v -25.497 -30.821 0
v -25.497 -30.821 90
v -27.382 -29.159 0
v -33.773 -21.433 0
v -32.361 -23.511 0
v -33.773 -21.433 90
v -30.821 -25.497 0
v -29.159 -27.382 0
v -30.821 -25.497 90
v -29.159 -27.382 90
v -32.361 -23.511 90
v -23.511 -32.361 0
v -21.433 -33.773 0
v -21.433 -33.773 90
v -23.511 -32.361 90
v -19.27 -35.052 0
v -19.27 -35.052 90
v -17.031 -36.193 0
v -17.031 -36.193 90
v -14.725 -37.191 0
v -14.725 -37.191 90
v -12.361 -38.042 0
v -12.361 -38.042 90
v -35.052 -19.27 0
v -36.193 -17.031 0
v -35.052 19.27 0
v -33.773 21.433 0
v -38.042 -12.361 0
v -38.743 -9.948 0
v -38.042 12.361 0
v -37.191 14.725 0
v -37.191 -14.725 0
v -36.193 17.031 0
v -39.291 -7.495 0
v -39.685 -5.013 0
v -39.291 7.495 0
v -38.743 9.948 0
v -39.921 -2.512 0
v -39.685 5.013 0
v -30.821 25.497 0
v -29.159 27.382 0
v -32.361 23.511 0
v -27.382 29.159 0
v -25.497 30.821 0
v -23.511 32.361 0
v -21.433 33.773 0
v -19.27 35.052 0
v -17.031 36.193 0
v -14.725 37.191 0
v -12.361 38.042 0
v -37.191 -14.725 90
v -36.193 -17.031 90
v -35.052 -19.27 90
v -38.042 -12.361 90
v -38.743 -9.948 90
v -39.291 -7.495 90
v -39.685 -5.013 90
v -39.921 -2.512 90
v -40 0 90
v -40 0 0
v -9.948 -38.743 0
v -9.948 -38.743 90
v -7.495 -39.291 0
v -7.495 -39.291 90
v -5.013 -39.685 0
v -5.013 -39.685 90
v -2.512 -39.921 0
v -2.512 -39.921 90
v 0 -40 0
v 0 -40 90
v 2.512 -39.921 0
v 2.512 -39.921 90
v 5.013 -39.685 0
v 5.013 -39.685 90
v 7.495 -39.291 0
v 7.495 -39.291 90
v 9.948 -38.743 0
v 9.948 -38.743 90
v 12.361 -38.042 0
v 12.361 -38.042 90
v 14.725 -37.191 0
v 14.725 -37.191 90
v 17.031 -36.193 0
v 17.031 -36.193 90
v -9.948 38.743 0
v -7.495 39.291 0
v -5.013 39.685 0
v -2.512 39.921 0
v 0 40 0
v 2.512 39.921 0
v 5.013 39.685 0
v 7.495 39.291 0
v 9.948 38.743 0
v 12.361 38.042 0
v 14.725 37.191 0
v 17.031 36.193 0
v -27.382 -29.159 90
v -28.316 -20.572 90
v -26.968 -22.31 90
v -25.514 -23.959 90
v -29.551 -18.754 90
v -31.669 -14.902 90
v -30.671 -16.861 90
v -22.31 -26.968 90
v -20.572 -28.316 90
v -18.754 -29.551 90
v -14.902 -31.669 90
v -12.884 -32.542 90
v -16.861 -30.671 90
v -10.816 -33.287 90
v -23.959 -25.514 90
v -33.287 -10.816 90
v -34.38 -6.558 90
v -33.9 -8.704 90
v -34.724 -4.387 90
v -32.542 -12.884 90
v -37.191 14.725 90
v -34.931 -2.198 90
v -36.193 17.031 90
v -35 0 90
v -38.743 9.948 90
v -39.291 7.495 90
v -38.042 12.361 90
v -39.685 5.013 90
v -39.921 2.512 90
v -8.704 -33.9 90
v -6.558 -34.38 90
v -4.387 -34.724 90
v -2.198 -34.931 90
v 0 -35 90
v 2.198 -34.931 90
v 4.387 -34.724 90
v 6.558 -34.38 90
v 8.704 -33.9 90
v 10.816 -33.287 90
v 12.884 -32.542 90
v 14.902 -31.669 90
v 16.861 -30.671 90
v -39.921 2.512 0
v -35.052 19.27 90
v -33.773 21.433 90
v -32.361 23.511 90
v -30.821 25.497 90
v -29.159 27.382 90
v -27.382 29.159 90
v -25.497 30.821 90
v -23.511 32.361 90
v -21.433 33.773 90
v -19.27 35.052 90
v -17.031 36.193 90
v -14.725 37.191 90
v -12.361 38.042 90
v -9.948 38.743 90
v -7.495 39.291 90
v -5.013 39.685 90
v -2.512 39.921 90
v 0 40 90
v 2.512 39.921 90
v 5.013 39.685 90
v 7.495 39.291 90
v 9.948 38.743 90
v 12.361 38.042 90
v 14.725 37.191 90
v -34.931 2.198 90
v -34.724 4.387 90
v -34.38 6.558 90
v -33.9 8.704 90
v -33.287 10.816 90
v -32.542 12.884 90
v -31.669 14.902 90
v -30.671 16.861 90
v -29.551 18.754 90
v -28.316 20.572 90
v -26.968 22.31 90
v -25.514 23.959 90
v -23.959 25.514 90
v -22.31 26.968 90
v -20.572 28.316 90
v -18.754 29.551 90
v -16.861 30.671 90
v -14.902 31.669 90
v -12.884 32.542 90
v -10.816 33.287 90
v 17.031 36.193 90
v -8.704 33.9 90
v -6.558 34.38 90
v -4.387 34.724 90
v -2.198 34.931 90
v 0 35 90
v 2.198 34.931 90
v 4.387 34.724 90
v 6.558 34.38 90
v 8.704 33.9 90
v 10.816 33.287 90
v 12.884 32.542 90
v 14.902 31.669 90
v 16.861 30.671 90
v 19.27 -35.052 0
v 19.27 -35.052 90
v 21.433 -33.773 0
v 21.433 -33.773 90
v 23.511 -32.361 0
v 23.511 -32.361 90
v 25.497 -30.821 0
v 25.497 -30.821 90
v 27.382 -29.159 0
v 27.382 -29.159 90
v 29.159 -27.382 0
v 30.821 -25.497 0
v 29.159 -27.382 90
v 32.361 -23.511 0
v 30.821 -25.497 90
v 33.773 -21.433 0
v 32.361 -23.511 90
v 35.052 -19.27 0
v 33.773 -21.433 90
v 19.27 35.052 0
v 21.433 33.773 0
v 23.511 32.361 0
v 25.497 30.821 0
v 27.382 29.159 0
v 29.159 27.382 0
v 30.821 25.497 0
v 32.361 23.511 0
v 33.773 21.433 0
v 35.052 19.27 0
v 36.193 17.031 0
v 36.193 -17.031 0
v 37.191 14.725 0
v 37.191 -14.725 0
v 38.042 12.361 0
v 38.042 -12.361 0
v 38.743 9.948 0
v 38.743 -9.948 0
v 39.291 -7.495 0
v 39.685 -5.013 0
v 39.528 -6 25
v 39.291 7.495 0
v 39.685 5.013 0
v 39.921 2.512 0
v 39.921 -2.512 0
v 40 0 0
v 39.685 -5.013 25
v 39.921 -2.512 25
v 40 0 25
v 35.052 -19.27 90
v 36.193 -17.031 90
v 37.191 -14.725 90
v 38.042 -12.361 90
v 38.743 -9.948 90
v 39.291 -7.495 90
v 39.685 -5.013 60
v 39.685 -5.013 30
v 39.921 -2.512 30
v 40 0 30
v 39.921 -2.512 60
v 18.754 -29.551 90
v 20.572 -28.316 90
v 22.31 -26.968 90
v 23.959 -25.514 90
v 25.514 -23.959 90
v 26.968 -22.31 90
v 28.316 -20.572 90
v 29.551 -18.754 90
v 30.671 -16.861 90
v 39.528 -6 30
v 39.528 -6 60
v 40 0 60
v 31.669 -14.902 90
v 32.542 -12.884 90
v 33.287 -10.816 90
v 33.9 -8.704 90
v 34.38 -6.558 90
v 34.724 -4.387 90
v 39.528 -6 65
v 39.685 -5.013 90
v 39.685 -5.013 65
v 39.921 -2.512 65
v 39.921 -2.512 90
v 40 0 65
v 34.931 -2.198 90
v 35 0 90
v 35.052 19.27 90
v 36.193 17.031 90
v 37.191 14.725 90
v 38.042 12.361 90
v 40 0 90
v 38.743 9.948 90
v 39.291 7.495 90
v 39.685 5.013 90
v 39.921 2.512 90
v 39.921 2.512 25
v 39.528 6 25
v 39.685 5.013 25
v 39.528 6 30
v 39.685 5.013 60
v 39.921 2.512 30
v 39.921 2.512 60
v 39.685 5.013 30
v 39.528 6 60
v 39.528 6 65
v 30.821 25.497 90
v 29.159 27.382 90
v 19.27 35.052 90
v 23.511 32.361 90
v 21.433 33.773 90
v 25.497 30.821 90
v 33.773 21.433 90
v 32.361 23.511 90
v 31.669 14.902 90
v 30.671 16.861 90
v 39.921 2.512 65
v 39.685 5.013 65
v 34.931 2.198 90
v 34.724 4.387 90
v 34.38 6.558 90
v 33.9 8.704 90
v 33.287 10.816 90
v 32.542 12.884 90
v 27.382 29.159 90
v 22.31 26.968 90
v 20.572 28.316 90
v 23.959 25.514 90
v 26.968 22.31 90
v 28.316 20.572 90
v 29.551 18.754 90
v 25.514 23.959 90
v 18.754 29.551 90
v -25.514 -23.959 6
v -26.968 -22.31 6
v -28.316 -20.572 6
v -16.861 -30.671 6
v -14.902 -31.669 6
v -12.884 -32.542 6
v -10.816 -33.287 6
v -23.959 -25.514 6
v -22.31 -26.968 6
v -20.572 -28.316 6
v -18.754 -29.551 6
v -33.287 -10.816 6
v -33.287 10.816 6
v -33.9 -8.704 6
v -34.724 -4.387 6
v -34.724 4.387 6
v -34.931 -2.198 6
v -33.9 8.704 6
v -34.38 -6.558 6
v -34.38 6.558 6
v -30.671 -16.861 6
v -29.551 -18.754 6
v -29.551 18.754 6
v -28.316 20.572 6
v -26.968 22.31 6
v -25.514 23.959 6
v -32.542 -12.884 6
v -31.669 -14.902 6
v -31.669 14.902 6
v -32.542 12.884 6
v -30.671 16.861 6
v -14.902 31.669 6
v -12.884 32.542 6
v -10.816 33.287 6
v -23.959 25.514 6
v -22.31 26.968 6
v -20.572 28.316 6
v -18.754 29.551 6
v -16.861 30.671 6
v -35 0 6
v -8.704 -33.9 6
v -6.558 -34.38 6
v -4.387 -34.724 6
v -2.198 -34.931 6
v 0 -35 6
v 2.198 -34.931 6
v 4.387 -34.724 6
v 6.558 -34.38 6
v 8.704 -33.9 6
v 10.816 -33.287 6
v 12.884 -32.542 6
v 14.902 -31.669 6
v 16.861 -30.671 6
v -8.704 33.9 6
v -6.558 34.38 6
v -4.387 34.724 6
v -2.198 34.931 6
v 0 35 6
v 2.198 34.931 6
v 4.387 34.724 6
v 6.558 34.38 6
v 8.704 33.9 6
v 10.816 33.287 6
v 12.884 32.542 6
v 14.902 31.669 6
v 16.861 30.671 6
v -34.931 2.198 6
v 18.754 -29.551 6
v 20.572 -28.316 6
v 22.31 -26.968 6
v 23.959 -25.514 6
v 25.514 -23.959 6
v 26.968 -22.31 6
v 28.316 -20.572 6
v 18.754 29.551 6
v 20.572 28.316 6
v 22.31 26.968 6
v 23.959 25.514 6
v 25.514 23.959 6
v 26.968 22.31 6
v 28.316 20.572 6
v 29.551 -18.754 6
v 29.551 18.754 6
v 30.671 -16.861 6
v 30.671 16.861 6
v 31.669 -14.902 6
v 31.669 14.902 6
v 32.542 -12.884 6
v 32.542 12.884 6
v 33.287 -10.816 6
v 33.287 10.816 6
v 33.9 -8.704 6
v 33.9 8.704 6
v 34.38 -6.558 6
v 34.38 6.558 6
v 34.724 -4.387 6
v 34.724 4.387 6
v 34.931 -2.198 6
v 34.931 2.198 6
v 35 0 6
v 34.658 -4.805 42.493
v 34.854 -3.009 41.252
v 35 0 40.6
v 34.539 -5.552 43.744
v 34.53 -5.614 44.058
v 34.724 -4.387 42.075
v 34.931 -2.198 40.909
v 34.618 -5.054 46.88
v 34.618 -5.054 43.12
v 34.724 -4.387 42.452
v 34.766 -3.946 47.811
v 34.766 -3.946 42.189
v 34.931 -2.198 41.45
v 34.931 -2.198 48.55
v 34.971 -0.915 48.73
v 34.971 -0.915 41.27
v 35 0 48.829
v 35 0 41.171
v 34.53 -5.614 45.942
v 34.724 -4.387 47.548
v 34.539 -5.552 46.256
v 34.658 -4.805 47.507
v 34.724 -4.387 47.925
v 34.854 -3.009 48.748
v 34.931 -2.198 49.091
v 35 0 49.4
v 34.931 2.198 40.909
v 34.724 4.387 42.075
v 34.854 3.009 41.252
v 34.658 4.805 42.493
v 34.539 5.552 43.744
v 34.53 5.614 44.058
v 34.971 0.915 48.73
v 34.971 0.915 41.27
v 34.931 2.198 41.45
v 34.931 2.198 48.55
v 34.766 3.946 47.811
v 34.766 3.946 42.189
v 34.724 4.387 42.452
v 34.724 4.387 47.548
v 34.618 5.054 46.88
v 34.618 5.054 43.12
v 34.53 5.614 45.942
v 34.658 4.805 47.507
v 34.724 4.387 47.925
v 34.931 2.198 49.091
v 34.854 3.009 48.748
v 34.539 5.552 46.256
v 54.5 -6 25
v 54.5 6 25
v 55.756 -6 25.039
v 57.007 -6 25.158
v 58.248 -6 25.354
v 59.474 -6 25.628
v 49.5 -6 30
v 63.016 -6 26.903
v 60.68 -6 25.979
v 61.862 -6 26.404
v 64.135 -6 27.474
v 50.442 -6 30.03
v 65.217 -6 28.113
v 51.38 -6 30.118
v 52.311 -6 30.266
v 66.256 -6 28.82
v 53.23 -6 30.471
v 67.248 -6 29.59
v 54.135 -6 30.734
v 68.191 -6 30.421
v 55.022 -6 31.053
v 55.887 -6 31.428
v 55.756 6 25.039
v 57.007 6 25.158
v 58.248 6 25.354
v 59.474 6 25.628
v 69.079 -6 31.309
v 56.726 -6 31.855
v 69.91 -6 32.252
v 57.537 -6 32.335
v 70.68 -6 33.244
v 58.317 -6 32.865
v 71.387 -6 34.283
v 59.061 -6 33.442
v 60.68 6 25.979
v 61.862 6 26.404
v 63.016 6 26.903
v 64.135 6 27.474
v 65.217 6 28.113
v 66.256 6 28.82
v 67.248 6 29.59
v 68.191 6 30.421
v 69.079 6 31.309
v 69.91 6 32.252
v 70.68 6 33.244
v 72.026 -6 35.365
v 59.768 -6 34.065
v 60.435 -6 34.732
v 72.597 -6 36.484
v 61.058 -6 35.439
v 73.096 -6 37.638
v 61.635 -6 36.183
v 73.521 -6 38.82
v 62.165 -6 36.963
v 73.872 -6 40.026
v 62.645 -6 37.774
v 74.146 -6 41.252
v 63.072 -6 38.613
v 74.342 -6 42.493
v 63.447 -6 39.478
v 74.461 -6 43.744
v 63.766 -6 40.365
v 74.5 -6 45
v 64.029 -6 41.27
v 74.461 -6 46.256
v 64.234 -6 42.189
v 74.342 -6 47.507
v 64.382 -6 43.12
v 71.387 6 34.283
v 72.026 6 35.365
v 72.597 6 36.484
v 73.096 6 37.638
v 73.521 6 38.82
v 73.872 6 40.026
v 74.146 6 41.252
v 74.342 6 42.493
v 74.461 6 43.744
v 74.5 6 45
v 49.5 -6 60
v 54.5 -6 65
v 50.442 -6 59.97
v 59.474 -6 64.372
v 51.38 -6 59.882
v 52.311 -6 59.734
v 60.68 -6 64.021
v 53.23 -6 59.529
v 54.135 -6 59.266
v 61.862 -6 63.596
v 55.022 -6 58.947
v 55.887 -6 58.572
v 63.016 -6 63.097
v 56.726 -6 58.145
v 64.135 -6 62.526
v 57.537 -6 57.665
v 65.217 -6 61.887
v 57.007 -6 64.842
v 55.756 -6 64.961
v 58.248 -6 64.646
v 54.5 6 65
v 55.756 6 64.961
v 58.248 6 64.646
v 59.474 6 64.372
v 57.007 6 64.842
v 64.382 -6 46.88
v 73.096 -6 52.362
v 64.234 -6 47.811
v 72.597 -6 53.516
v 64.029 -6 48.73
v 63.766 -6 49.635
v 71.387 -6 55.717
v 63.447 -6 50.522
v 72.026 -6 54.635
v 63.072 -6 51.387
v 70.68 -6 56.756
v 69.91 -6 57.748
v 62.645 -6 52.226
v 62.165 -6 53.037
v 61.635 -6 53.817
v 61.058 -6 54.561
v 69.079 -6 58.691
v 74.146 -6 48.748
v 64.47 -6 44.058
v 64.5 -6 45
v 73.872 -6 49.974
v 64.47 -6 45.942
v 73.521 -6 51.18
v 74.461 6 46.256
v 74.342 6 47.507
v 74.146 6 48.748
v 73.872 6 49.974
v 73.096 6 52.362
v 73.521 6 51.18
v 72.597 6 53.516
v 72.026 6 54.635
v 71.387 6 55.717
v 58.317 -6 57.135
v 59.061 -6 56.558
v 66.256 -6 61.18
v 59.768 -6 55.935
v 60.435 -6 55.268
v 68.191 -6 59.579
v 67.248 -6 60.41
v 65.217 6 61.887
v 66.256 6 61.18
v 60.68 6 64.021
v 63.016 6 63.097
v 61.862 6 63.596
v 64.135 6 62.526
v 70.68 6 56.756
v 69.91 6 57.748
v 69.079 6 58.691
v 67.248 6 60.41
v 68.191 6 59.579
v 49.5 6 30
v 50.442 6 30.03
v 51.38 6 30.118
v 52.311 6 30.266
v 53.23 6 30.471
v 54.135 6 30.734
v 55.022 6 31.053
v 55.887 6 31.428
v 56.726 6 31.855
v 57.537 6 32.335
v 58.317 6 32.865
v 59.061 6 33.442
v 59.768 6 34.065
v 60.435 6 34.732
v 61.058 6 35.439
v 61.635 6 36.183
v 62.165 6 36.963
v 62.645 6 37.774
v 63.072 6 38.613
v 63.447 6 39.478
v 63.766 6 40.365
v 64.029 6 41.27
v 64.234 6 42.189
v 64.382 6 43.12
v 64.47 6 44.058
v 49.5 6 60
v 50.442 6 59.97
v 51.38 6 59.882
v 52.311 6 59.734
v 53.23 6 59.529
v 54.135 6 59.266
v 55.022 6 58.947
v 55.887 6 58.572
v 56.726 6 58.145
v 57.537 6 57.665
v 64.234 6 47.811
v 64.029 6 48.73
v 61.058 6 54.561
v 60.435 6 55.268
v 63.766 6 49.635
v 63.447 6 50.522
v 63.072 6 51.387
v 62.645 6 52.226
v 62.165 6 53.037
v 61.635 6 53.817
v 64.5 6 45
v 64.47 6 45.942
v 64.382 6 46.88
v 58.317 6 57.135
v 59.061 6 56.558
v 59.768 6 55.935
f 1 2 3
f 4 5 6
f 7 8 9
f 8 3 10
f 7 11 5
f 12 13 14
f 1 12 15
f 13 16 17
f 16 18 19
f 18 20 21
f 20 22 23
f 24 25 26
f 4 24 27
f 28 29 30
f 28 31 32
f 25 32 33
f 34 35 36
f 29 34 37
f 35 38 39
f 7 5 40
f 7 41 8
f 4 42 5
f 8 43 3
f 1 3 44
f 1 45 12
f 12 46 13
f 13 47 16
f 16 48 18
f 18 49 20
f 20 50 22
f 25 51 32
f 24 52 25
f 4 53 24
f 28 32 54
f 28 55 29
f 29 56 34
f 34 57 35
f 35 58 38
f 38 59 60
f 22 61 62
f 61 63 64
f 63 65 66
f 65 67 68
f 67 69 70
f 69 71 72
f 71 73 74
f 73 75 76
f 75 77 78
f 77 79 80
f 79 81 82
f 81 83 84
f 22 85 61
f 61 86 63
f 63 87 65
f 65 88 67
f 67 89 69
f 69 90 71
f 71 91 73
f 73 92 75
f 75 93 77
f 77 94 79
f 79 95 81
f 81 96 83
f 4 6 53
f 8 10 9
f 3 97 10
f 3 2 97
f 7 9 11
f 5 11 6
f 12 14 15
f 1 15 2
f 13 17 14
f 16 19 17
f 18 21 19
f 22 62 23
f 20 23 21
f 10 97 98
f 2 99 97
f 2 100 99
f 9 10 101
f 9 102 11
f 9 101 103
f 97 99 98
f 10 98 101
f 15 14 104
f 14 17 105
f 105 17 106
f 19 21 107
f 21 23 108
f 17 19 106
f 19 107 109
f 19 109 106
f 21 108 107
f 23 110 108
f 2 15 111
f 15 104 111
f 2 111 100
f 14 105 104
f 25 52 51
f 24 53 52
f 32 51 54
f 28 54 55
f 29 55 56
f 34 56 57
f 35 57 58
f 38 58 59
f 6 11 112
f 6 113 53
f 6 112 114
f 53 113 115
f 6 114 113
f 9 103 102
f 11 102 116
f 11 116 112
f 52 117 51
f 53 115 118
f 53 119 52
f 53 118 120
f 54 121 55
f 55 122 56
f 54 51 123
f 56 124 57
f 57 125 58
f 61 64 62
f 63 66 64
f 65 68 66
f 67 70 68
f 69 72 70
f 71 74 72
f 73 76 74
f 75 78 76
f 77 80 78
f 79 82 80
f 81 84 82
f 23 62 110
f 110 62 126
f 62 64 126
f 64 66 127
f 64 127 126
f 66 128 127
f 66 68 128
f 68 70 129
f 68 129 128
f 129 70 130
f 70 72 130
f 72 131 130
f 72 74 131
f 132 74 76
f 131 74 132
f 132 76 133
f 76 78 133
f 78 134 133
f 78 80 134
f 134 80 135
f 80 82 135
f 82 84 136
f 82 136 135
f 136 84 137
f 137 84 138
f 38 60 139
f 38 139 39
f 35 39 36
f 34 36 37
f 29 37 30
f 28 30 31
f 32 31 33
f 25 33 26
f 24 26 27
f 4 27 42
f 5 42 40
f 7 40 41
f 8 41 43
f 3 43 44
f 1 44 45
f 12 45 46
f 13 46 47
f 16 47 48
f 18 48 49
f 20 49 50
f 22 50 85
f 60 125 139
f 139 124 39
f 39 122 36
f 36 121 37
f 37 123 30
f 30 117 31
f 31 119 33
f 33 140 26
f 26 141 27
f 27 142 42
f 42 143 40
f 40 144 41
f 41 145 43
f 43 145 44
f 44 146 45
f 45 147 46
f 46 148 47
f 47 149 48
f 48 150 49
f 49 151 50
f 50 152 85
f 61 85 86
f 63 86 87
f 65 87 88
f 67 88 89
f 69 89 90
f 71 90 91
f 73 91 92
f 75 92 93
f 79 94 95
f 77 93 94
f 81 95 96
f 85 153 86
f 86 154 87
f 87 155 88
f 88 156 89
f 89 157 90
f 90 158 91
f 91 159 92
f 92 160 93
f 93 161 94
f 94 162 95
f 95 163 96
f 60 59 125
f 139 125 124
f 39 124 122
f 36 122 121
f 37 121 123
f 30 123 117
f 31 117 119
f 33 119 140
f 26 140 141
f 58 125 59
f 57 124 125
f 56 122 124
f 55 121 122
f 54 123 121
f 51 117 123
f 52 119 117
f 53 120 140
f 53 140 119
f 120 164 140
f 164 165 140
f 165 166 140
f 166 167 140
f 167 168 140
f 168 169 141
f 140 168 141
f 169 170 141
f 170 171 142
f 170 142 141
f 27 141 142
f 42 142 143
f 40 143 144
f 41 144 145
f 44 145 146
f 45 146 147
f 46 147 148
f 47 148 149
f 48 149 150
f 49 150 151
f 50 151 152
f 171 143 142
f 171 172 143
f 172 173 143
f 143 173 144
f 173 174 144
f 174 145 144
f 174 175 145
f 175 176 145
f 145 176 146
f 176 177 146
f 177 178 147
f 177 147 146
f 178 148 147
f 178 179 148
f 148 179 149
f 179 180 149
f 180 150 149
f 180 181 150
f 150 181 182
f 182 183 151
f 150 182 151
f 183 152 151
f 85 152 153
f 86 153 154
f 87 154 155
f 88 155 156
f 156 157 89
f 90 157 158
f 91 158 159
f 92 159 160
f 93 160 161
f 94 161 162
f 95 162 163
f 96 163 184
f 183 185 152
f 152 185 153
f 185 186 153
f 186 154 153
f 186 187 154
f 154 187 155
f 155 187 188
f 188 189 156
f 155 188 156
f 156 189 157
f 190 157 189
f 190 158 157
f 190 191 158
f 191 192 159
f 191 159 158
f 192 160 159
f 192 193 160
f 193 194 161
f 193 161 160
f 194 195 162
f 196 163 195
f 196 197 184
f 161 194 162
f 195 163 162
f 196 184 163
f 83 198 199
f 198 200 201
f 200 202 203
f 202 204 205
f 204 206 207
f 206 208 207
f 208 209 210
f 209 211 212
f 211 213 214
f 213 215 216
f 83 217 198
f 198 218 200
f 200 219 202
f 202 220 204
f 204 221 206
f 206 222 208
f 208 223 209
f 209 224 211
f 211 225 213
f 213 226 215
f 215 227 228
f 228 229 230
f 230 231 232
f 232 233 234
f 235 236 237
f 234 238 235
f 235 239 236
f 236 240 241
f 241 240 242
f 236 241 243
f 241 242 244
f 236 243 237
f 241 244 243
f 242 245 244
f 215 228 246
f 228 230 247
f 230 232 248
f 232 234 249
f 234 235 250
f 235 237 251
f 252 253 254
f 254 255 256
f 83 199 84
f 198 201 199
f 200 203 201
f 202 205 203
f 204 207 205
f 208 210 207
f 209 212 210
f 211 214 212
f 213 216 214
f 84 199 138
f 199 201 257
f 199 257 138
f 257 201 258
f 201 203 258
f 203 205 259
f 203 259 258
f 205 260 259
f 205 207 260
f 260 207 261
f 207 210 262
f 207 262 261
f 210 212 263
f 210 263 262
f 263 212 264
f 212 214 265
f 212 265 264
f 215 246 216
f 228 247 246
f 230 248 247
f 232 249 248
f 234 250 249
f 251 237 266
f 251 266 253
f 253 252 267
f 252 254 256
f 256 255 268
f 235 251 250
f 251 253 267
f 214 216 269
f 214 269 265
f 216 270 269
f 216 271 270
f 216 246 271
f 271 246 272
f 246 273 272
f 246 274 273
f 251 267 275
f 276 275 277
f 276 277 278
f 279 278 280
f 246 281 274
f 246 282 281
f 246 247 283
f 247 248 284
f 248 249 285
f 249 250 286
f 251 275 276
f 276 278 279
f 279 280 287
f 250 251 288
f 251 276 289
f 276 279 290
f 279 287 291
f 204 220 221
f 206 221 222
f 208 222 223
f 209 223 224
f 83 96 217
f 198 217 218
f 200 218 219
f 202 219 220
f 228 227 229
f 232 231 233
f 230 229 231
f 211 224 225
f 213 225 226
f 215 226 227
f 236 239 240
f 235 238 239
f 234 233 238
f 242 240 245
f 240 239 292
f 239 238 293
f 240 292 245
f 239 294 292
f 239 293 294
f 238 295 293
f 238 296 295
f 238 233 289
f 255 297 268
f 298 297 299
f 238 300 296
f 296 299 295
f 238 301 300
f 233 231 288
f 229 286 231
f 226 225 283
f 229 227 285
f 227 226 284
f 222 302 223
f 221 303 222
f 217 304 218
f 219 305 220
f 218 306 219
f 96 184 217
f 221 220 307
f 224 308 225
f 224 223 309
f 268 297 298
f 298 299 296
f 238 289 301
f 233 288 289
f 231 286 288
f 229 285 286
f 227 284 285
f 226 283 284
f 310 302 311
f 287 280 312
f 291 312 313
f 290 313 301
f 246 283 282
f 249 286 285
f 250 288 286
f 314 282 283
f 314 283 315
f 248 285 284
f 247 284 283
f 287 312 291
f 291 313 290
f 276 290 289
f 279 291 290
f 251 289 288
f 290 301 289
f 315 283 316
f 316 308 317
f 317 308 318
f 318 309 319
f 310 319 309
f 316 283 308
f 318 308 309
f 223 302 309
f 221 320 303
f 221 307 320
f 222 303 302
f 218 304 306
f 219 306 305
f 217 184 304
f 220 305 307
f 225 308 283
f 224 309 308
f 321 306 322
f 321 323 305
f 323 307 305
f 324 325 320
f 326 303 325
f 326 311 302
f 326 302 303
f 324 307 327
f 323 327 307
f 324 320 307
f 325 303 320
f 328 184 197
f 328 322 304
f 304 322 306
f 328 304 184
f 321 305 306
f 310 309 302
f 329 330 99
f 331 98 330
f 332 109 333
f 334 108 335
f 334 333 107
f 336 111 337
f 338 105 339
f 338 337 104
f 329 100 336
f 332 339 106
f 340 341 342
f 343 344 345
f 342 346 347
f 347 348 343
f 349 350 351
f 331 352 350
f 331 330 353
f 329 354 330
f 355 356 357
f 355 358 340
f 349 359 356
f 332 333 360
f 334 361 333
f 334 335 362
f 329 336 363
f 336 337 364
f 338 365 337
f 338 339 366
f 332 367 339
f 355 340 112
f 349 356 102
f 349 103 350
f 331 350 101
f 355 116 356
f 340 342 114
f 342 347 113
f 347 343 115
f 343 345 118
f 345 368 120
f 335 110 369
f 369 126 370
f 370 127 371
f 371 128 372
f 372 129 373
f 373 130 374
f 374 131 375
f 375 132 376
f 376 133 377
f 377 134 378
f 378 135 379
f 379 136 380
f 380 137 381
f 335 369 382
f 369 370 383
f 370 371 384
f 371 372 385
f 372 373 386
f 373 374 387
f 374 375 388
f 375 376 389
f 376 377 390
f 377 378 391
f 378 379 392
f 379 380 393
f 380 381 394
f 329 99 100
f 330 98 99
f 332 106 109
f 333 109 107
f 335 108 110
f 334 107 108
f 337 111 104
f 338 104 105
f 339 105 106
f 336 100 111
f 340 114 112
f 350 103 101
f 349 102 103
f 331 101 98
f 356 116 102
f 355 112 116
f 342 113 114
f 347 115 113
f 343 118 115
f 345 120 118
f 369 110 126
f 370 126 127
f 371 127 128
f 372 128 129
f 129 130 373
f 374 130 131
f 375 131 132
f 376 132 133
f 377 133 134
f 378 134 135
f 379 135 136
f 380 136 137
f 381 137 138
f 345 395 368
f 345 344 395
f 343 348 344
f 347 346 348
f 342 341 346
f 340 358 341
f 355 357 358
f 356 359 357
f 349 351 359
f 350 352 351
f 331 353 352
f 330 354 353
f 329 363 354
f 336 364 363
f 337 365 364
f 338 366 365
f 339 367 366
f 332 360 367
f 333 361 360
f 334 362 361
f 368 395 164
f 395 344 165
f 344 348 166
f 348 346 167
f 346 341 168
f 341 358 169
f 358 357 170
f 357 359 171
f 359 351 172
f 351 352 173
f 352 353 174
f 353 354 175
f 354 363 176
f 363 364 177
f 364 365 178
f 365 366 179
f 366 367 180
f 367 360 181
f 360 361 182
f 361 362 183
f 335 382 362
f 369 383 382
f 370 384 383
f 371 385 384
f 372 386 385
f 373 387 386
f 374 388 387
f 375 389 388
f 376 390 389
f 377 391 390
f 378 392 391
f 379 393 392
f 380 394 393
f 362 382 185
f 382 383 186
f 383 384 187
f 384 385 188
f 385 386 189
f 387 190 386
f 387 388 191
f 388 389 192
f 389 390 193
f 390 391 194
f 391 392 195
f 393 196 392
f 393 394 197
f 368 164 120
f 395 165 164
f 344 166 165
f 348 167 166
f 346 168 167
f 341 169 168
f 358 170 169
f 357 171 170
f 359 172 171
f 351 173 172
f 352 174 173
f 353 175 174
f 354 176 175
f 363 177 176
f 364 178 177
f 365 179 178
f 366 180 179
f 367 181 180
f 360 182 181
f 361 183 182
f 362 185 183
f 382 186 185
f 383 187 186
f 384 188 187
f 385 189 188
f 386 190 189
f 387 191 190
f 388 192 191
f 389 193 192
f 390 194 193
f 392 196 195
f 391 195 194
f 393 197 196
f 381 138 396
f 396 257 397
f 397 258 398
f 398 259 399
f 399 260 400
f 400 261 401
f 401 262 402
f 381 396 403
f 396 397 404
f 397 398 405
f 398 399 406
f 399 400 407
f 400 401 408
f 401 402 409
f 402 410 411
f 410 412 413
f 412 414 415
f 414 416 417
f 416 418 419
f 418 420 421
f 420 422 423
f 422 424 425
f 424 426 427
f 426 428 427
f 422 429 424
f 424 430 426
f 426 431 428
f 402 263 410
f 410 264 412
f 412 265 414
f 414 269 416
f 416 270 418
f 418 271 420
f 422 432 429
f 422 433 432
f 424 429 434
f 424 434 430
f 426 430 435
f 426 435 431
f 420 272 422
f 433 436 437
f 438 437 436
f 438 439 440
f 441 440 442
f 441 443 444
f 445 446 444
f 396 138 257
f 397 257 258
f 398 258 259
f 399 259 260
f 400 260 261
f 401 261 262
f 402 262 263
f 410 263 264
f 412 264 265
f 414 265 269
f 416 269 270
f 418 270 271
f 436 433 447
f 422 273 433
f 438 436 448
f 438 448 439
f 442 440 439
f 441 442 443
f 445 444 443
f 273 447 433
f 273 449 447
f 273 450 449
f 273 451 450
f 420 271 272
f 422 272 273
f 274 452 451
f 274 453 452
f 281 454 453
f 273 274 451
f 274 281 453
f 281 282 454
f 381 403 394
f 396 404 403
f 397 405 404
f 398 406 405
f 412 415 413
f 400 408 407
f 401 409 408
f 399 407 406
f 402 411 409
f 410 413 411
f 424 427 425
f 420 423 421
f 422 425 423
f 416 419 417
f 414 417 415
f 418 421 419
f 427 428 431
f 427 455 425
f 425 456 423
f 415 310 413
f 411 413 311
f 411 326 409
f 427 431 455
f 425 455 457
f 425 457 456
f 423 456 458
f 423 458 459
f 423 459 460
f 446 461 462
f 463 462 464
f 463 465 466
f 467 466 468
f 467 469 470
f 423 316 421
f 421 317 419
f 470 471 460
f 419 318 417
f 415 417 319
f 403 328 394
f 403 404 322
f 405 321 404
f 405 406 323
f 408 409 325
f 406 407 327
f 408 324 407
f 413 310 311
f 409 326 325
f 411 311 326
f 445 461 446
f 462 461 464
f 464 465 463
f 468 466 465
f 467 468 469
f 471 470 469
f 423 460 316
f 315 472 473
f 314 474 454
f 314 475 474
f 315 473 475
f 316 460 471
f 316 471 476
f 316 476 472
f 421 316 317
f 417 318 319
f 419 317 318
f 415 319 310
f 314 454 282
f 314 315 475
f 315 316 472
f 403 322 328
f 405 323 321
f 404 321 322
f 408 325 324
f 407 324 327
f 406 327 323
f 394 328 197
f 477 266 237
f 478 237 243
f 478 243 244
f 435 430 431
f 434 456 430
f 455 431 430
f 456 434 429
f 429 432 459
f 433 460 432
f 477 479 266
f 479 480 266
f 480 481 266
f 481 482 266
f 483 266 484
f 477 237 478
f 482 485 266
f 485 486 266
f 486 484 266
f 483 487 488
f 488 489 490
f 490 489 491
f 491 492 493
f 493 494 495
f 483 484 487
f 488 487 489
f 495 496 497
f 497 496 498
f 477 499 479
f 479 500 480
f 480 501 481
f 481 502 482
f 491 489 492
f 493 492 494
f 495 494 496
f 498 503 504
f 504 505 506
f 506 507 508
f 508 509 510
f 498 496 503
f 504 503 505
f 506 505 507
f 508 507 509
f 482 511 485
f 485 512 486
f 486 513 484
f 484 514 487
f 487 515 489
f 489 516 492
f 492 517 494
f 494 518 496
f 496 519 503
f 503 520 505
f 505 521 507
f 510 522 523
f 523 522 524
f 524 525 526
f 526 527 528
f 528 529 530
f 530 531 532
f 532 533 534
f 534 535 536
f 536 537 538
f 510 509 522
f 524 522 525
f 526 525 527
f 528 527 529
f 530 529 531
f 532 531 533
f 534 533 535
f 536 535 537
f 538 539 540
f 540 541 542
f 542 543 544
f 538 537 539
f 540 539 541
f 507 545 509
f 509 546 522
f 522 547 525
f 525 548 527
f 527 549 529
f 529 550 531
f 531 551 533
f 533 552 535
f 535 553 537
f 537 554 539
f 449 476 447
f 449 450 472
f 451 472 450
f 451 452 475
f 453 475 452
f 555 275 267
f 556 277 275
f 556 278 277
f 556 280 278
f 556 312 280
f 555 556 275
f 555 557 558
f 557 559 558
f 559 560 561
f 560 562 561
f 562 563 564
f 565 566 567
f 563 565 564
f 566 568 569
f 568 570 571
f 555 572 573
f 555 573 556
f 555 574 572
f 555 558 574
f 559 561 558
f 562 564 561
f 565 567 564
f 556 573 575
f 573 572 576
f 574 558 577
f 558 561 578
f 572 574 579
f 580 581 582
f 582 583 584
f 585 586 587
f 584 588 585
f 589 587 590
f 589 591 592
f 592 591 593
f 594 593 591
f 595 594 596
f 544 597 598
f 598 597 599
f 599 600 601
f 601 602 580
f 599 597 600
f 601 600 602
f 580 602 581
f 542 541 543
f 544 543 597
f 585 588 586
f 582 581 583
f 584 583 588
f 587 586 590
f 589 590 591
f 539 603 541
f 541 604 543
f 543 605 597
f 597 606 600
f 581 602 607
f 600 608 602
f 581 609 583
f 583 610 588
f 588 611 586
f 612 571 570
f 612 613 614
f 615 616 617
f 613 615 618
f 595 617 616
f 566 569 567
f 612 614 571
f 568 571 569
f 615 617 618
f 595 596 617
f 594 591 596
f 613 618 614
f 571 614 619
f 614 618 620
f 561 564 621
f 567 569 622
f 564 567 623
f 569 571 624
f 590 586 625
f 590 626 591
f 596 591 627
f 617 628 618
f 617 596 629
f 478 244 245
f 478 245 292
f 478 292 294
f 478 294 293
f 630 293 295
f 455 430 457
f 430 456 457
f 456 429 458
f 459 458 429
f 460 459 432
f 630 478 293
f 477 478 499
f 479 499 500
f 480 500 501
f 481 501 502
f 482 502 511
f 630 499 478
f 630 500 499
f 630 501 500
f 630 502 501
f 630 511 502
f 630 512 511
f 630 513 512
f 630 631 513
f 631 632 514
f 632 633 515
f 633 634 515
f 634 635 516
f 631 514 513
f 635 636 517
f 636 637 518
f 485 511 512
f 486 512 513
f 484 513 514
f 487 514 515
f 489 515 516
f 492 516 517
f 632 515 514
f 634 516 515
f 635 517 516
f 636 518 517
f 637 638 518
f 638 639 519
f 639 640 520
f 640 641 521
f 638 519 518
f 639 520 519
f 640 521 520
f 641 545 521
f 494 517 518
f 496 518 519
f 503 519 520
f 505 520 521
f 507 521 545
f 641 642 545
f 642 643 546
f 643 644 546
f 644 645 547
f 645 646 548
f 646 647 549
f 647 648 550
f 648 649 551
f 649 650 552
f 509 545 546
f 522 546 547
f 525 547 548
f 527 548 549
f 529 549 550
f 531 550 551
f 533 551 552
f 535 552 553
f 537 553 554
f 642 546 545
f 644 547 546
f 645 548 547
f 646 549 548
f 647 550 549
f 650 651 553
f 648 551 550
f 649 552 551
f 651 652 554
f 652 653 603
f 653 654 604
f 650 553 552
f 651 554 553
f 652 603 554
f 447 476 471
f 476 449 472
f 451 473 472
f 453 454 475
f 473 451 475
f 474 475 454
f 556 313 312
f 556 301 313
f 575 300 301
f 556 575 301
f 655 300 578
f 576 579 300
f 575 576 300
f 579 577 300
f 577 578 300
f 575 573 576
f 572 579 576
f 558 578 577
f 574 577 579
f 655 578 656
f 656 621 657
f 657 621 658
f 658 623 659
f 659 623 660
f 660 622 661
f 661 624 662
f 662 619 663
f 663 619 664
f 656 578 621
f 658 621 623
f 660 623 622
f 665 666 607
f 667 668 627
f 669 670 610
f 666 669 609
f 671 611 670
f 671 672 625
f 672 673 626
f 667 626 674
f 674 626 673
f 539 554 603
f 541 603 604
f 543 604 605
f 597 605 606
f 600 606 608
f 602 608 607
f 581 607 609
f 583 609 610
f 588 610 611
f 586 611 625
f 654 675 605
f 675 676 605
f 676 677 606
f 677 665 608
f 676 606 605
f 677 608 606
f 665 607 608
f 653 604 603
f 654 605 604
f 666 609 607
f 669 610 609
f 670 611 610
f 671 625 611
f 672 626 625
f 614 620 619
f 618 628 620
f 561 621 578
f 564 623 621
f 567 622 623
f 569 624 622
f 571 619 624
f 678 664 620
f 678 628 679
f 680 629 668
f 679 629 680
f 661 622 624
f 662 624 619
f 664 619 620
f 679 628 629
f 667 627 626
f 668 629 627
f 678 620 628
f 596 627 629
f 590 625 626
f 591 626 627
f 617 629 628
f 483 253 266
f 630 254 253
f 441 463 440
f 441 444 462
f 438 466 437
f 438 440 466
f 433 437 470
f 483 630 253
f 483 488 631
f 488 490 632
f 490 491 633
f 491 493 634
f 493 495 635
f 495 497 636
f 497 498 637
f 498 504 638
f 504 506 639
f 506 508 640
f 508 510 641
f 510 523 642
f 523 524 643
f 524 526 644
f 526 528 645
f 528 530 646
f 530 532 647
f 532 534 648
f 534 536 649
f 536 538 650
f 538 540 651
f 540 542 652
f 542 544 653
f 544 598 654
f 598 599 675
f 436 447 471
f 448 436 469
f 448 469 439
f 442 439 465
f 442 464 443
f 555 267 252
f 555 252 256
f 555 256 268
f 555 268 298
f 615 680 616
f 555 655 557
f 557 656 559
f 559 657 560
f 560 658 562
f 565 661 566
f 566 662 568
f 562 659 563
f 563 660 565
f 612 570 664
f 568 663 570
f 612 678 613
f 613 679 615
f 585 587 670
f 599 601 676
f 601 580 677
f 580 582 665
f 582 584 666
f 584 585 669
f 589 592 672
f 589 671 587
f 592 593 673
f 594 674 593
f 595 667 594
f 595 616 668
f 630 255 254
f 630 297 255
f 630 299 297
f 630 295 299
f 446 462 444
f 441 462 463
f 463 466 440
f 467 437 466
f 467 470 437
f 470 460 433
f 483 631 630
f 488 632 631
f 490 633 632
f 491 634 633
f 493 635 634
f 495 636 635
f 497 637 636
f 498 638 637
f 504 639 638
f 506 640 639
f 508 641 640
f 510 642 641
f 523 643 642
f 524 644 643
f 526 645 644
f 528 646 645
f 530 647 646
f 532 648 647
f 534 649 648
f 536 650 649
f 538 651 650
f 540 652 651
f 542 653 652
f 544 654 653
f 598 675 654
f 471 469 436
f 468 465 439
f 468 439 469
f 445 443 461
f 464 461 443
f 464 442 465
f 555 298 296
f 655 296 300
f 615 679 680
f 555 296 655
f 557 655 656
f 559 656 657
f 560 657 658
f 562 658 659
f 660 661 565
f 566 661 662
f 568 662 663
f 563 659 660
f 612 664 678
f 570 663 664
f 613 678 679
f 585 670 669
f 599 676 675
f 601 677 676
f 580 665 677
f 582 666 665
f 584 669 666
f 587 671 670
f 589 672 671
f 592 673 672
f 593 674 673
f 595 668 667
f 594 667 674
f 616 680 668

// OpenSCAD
$fn = 100;
eps = 0.1;

module d2(width, height){
    r = height/2;
    rect_w = width - r;
    union(){
        translate([0, -height/2]) square([rect_w, height]);
        translate([rect_w, 0]) circle(r=r);
    }
}

module handle(){
    outer_w = 35;
    outer_h = 40;
    inner_w = 25;
    inner_h = 30;
    depth = 12;
    difference(){
        rotate([90,0,0]) linear_extrude(height=depth, center=true) d2(outer_w, outer_h);
        rotate([90,0,0]) linear_extrude(height=depth+eps, center=true) d2(inner_w, inner_h);
    }
}

module mug(){
    difference(){
        cylinder(h=90, r=40);
        translate([0,0,6]) cylinder(h=84+eps, r=35);
    }
}

union(){
    mug();
    translate([40-0.5,0,45]) handle();
}
